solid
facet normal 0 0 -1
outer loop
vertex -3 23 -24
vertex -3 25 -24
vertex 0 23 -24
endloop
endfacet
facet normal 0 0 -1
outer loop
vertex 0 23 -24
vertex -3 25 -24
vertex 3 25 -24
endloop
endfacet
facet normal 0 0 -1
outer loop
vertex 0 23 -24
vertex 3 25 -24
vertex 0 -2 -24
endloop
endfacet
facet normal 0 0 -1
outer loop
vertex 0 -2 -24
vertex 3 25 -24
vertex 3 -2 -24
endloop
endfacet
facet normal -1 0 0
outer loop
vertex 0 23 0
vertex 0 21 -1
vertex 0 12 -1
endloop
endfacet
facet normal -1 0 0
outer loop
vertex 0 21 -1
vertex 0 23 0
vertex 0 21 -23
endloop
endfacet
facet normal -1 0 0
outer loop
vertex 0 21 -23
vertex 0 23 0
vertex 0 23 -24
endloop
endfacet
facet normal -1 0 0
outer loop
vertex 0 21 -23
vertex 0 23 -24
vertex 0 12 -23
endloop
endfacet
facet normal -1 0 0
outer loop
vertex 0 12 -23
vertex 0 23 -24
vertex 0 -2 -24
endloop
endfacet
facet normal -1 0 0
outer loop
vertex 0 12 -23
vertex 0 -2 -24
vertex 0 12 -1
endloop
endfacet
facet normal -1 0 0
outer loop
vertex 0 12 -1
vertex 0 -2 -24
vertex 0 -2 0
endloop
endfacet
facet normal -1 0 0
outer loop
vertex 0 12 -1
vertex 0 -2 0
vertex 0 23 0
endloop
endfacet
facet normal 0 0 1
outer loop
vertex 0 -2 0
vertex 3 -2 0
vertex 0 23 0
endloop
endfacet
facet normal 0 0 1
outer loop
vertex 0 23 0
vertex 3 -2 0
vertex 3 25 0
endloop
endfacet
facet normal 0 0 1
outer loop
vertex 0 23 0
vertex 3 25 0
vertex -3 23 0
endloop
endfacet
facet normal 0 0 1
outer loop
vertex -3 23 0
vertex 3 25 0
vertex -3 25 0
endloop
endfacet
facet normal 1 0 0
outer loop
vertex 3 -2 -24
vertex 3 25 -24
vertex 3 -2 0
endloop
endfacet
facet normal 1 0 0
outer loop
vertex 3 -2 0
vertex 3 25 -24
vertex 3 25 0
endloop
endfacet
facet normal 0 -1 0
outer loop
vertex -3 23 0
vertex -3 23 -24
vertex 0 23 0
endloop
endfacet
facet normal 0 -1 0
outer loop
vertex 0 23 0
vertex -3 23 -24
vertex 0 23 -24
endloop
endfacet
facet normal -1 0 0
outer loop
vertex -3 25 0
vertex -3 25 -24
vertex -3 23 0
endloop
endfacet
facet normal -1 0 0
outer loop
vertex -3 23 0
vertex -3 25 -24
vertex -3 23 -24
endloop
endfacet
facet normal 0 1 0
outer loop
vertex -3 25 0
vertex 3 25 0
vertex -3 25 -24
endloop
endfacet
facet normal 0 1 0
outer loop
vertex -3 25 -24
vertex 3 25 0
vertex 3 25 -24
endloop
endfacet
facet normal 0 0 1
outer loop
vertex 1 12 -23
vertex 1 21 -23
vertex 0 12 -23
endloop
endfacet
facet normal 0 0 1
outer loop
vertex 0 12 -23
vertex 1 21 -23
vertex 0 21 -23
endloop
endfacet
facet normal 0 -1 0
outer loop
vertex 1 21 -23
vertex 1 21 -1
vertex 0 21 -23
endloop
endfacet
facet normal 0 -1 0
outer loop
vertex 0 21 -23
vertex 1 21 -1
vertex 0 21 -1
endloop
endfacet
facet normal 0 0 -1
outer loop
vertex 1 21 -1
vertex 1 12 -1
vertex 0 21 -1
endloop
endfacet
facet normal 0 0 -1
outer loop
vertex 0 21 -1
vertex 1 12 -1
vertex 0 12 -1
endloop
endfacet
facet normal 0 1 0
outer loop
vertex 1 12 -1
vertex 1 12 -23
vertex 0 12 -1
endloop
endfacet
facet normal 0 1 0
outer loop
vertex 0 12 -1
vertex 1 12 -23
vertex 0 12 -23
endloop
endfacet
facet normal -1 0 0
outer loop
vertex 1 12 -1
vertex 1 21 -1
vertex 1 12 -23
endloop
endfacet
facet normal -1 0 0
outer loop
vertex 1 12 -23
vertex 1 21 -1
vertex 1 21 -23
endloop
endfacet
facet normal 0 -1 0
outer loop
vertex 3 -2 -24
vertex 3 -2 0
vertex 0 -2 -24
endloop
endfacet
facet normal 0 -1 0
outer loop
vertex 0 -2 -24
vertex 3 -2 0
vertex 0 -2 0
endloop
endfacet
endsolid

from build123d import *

# Parameters (mm, degrees)
SKETCH1_W           = 3
SKETCH1_H           = 24
BOSS_EXTRUDE1_DEPTH = 23
SKETCH2_W           = 6
SKETCH2_H           = 24
BOSS_EXTRUDE2_DEPTH = 2
SKETCH3_W           = 22
SKETCH3_H           = 9
CUT_EXTRUDE1_DEPTH  = 1
SKETCH4_W           = 3
SKETCH4_H           = 24
BOSS_EXTRUDE3_DEPTH = 2


with BuildPart() as part:
    # Sketch1 → Boss-Extrude1 (new body)
    with BuildSketch(Plane(origin=(0, 0, 0), x_dir=(1, 0, 0), z_dir=(0, 1, 0))):
        with Locations((1.5, 12)):
            Rectangle(SKETCH1_W, SKETCH1_H)
    extrude(amount=BOSS_EXTRUDE1_DEPTH)

    # Sketch2 → Boss-Extrude2 (add)
    with BuildSketch(Plane(origin=(0, 23, 0), x_dir=(1, 0, 0), z_dir=(0, 1, 0))):
        with Locations((0, 12)):
            Rectangle(SKETCH2_W, SKETCH2_H)
    extrude(amount=BOSS_EXTRUDE2_DEPTH)

    # Sketch3 → Cut-Extrude1 (cut)
    with BuildSketch(Plane.ZY):
        with Locations((-12, 16.5)):
            Rectangle(SKETCH3_W, SKETCH3_H)
    extrude(amount=-CUT_EXTRUDE1_DEPTH, mode=Mode.SUBTRACT)

    # Sketch4 → Boss-Extrude3 (add)
    with BuildSketch(Plane.XZ):
        with Locations((1.5, -12)):
            Rectangle(SKETCH4_W, SKETCH4_H)
    extrude(amount=BOSS_EXTRUDE3_DEPTH)


solid = part.part
